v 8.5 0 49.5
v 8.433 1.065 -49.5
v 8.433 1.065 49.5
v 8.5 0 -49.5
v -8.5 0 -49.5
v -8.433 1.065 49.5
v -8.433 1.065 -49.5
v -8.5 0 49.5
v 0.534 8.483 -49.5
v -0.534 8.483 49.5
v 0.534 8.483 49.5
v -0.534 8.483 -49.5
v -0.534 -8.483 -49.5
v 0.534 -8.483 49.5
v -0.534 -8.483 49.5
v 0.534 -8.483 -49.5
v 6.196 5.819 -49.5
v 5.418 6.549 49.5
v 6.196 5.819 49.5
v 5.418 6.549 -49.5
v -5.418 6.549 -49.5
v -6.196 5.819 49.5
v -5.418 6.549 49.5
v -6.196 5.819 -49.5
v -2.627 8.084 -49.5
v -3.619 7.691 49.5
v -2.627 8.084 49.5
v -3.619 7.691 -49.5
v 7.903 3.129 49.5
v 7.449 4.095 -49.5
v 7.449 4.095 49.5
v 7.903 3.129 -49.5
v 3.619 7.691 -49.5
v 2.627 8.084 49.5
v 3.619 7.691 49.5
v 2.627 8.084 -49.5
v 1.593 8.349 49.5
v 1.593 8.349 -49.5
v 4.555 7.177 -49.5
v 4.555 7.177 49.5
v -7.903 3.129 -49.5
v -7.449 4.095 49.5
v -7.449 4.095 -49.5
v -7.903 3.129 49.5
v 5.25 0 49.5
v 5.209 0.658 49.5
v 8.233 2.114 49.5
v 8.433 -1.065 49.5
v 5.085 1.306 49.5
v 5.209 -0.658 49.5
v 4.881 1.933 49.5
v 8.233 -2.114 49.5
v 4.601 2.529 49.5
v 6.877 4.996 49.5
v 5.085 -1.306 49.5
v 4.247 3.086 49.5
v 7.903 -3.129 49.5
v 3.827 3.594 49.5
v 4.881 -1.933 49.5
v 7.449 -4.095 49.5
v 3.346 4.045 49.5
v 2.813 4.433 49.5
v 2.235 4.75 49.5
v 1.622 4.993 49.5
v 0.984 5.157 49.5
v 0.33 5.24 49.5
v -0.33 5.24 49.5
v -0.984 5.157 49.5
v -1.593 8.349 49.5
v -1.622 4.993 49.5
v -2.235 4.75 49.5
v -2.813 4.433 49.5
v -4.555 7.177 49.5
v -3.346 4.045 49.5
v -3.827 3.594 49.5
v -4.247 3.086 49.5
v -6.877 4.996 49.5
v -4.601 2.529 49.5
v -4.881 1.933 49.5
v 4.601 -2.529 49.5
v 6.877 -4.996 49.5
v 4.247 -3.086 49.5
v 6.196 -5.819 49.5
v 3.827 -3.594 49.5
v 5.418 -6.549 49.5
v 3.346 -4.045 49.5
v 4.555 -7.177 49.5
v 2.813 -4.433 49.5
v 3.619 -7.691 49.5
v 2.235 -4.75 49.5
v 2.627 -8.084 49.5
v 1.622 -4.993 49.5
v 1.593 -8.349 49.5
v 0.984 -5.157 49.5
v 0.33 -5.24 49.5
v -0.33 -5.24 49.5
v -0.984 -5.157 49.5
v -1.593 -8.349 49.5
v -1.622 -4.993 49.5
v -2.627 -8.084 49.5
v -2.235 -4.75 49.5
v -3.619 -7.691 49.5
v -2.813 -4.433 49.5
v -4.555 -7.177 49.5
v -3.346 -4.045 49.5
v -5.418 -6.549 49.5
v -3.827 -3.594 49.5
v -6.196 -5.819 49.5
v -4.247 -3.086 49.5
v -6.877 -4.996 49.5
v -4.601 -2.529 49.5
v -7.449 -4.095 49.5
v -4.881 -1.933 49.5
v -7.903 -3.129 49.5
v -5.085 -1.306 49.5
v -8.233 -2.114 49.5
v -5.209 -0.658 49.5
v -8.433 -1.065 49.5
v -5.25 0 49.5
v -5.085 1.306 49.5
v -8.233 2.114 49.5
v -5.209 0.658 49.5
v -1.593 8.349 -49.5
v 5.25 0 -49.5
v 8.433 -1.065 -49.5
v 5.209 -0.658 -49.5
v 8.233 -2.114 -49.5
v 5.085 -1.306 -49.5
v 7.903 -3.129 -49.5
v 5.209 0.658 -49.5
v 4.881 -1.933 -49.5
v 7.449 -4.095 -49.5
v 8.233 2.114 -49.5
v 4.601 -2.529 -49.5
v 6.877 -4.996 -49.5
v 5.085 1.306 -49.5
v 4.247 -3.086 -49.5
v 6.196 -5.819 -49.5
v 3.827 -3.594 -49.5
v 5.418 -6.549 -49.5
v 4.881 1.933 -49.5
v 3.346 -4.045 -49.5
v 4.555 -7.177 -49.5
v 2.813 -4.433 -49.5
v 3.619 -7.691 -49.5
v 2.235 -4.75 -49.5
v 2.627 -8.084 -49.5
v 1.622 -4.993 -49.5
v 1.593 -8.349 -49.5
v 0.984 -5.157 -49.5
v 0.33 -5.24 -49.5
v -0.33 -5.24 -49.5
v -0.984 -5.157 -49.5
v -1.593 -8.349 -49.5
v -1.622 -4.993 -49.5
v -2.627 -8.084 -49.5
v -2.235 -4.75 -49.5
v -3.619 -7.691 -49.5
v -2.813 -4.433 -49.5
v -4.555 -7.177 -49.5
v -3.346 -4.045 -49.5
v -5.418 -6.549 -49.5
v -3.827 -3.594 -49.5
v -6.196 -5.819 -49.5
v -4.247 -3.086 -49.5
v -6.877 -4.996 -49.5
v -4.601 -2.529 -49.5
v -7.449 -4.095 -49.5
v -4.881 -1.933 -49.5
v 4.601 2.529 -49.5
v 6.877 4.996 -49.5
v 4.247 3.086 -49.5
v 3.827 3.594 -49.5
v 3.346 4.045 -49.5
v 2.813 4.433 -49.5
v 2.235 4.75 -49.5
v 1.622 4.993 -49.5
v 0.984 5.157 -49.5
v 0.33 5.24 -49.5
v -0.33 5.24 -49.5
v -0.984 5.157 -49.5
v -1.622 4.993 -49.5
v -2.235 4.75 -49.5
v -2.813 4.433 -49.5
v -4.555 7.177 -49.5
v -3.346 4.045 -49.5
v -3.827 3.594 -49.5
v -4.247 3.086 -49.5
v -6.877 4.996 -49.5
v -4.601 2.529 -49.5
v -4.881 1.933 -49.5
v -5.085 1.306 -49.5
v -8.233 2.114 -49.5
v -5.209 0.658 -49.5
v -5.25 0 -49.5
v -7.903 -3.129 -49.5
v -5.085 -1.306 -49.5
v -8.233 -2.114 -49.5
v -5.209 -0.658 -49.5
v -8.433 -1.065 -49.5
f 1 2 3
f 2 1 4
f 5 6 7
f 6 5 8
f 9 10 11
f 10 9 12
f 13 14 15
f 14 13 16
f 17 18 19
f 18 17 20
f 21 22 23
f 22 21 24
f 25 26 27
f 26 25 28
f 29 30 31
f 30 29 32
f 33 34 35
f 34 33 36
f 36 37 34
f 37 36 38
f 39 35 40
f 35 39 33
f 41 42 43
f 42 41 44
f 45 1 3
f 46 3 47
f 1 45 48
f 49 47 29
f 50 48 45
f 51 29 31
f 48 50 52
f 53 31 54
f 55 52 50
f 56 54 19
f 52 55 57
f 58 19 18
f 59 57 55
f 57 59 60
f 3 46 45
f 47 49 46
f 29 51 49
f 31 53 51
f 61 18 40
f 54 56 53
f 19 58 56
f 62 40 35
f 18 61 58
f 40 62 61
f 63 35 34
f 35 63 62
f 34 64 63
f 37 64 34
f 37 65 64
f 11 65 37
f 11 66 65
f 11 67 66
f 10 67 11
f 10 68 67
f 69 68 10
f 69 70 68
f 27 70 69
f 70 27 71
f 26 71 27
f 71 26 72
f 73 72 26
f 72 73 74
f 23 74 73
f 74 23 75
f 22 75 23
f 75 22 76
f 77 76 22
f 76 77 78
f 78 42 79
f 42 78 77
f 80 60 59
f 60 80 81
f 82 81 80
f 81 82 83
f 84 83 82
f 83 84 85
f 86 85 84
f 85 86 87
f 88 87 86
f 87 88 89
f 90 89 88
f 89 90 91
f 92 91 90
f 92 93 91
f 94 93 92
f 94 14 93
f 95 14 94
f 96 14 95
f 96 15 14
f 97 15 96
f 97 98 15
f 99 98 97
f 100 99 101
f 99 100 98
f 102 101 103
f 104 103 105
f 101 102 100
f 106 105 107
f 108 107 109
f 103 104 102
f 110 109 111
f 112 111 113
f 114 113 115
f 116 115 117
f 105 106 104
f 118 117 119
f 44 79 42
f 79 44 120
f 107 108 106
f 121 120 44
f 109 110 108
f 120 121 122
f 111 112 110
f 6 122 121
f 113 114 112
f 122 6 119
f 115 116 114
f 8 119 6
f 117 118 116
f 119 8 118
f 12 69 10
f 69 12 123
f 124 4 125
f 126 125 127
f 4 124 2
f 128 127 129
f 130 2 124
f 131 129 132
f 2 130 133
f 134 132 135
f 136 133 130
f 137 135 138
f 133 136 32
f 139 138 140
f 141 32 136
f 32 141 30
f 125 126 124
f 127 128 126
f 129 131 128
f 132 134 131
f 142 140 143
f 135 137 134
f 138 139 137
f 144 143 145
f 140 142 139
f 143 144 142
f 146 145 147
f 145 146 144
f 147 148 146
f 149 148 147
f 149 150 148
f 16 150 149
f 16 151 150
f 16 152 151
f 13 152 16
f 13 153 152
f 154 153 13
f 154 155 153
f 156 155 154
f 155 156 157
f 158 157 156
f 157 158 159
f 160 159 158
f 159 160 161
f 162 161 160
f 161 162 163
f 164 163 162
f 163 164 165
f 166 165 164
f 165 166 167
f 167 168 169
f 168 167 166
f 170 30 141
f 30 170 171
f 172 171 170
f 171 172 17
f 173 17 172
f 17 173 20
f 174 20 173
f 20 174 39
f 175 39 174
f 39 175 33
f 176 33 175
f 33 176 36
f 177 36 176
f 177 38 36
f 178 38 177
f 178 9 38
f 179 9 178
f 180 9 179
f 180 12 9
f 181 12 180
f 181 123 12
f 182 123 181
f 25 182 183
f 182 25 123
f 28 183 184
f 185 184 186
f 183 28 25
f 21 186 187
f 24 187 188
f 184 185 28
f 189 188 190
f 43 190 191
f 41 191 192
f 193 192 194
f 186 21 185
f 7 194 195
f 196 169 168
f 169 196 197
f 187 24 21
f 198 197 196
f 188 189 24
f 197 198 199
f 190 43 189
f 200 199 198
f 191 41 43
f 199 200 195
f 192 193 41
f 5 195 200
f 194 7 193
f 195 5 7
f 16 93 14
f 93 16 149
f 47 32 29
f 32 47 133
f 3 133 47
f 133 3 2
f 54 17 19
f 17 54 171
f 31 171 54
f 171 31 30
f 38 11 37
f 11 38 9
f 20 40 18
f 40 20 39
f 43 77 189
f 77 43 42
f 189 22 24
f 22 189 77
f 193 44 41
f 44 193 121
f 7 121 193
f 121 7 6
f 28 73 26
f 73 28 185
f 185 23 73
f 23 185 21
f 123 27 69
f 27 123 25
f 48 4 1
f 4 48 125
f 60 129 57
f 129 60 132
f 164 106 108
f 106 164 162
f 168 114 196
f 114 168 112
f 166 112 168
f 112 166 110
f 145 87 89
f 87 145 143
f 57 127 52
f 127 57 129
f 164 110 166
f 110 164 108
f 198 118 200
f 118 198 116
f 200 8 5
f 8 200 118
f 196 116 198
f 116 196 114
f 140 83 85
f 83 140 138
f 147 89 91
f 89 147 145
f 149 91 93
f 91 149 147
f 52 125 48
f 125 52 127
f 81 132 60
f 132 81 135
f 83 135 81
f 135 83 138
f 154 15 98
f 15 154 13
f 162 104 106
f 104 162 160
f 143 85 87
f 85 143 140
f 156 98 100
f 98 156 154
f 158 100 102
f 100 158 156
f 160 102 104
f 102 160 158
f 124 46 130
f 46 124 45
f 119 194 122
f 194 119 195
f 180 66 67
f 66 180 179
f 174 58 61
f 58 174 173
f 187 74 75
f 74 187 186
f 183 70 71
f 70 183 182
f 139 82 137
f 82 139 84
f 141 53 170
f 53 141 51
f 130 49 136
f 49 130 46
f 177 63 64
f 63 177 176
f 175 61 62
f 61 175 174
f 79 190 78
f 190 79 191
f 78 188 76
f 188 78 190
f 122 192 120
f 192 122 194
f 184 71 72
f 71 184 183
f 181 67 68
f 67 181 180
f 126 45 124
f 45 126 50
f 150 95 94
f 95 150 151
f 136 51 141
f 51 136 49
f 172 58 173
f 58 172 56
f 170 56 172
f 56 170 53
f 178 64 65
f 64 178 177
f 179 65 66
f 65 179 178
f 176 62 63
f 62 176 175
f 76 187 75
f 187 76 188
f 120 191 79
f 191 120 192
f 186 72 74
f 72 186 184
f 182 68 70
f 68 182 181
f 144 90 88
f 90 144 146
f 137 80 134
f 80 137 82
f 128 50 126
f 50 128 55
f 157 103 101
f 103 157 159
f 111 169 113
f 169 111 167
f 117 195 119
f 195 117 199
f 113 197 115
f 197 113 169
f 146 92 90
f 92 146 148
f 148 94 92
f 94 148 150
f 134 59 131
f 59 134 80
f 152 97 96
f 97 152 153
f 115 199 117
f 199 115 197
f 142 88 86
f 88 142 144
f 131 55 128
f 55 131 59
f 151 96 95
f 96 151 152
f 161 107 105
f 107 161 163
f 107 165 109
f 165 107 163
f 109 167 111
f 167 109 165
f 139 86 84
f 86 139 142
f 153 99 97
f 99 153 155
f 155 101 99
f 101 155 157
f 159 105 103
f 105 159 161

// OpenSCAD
$fn = 50;


difference() {
	union() {
		translate(v = [0, 0, -49.5000000000]) {
			cylinder(h = 99, r = 8.5000000000);
		}
	}
	union() {
		translate(v = [0, 0, -100.0000000000]) {
			cylinder(h = 200, r = 5.2500000000);
		}
	}
}
